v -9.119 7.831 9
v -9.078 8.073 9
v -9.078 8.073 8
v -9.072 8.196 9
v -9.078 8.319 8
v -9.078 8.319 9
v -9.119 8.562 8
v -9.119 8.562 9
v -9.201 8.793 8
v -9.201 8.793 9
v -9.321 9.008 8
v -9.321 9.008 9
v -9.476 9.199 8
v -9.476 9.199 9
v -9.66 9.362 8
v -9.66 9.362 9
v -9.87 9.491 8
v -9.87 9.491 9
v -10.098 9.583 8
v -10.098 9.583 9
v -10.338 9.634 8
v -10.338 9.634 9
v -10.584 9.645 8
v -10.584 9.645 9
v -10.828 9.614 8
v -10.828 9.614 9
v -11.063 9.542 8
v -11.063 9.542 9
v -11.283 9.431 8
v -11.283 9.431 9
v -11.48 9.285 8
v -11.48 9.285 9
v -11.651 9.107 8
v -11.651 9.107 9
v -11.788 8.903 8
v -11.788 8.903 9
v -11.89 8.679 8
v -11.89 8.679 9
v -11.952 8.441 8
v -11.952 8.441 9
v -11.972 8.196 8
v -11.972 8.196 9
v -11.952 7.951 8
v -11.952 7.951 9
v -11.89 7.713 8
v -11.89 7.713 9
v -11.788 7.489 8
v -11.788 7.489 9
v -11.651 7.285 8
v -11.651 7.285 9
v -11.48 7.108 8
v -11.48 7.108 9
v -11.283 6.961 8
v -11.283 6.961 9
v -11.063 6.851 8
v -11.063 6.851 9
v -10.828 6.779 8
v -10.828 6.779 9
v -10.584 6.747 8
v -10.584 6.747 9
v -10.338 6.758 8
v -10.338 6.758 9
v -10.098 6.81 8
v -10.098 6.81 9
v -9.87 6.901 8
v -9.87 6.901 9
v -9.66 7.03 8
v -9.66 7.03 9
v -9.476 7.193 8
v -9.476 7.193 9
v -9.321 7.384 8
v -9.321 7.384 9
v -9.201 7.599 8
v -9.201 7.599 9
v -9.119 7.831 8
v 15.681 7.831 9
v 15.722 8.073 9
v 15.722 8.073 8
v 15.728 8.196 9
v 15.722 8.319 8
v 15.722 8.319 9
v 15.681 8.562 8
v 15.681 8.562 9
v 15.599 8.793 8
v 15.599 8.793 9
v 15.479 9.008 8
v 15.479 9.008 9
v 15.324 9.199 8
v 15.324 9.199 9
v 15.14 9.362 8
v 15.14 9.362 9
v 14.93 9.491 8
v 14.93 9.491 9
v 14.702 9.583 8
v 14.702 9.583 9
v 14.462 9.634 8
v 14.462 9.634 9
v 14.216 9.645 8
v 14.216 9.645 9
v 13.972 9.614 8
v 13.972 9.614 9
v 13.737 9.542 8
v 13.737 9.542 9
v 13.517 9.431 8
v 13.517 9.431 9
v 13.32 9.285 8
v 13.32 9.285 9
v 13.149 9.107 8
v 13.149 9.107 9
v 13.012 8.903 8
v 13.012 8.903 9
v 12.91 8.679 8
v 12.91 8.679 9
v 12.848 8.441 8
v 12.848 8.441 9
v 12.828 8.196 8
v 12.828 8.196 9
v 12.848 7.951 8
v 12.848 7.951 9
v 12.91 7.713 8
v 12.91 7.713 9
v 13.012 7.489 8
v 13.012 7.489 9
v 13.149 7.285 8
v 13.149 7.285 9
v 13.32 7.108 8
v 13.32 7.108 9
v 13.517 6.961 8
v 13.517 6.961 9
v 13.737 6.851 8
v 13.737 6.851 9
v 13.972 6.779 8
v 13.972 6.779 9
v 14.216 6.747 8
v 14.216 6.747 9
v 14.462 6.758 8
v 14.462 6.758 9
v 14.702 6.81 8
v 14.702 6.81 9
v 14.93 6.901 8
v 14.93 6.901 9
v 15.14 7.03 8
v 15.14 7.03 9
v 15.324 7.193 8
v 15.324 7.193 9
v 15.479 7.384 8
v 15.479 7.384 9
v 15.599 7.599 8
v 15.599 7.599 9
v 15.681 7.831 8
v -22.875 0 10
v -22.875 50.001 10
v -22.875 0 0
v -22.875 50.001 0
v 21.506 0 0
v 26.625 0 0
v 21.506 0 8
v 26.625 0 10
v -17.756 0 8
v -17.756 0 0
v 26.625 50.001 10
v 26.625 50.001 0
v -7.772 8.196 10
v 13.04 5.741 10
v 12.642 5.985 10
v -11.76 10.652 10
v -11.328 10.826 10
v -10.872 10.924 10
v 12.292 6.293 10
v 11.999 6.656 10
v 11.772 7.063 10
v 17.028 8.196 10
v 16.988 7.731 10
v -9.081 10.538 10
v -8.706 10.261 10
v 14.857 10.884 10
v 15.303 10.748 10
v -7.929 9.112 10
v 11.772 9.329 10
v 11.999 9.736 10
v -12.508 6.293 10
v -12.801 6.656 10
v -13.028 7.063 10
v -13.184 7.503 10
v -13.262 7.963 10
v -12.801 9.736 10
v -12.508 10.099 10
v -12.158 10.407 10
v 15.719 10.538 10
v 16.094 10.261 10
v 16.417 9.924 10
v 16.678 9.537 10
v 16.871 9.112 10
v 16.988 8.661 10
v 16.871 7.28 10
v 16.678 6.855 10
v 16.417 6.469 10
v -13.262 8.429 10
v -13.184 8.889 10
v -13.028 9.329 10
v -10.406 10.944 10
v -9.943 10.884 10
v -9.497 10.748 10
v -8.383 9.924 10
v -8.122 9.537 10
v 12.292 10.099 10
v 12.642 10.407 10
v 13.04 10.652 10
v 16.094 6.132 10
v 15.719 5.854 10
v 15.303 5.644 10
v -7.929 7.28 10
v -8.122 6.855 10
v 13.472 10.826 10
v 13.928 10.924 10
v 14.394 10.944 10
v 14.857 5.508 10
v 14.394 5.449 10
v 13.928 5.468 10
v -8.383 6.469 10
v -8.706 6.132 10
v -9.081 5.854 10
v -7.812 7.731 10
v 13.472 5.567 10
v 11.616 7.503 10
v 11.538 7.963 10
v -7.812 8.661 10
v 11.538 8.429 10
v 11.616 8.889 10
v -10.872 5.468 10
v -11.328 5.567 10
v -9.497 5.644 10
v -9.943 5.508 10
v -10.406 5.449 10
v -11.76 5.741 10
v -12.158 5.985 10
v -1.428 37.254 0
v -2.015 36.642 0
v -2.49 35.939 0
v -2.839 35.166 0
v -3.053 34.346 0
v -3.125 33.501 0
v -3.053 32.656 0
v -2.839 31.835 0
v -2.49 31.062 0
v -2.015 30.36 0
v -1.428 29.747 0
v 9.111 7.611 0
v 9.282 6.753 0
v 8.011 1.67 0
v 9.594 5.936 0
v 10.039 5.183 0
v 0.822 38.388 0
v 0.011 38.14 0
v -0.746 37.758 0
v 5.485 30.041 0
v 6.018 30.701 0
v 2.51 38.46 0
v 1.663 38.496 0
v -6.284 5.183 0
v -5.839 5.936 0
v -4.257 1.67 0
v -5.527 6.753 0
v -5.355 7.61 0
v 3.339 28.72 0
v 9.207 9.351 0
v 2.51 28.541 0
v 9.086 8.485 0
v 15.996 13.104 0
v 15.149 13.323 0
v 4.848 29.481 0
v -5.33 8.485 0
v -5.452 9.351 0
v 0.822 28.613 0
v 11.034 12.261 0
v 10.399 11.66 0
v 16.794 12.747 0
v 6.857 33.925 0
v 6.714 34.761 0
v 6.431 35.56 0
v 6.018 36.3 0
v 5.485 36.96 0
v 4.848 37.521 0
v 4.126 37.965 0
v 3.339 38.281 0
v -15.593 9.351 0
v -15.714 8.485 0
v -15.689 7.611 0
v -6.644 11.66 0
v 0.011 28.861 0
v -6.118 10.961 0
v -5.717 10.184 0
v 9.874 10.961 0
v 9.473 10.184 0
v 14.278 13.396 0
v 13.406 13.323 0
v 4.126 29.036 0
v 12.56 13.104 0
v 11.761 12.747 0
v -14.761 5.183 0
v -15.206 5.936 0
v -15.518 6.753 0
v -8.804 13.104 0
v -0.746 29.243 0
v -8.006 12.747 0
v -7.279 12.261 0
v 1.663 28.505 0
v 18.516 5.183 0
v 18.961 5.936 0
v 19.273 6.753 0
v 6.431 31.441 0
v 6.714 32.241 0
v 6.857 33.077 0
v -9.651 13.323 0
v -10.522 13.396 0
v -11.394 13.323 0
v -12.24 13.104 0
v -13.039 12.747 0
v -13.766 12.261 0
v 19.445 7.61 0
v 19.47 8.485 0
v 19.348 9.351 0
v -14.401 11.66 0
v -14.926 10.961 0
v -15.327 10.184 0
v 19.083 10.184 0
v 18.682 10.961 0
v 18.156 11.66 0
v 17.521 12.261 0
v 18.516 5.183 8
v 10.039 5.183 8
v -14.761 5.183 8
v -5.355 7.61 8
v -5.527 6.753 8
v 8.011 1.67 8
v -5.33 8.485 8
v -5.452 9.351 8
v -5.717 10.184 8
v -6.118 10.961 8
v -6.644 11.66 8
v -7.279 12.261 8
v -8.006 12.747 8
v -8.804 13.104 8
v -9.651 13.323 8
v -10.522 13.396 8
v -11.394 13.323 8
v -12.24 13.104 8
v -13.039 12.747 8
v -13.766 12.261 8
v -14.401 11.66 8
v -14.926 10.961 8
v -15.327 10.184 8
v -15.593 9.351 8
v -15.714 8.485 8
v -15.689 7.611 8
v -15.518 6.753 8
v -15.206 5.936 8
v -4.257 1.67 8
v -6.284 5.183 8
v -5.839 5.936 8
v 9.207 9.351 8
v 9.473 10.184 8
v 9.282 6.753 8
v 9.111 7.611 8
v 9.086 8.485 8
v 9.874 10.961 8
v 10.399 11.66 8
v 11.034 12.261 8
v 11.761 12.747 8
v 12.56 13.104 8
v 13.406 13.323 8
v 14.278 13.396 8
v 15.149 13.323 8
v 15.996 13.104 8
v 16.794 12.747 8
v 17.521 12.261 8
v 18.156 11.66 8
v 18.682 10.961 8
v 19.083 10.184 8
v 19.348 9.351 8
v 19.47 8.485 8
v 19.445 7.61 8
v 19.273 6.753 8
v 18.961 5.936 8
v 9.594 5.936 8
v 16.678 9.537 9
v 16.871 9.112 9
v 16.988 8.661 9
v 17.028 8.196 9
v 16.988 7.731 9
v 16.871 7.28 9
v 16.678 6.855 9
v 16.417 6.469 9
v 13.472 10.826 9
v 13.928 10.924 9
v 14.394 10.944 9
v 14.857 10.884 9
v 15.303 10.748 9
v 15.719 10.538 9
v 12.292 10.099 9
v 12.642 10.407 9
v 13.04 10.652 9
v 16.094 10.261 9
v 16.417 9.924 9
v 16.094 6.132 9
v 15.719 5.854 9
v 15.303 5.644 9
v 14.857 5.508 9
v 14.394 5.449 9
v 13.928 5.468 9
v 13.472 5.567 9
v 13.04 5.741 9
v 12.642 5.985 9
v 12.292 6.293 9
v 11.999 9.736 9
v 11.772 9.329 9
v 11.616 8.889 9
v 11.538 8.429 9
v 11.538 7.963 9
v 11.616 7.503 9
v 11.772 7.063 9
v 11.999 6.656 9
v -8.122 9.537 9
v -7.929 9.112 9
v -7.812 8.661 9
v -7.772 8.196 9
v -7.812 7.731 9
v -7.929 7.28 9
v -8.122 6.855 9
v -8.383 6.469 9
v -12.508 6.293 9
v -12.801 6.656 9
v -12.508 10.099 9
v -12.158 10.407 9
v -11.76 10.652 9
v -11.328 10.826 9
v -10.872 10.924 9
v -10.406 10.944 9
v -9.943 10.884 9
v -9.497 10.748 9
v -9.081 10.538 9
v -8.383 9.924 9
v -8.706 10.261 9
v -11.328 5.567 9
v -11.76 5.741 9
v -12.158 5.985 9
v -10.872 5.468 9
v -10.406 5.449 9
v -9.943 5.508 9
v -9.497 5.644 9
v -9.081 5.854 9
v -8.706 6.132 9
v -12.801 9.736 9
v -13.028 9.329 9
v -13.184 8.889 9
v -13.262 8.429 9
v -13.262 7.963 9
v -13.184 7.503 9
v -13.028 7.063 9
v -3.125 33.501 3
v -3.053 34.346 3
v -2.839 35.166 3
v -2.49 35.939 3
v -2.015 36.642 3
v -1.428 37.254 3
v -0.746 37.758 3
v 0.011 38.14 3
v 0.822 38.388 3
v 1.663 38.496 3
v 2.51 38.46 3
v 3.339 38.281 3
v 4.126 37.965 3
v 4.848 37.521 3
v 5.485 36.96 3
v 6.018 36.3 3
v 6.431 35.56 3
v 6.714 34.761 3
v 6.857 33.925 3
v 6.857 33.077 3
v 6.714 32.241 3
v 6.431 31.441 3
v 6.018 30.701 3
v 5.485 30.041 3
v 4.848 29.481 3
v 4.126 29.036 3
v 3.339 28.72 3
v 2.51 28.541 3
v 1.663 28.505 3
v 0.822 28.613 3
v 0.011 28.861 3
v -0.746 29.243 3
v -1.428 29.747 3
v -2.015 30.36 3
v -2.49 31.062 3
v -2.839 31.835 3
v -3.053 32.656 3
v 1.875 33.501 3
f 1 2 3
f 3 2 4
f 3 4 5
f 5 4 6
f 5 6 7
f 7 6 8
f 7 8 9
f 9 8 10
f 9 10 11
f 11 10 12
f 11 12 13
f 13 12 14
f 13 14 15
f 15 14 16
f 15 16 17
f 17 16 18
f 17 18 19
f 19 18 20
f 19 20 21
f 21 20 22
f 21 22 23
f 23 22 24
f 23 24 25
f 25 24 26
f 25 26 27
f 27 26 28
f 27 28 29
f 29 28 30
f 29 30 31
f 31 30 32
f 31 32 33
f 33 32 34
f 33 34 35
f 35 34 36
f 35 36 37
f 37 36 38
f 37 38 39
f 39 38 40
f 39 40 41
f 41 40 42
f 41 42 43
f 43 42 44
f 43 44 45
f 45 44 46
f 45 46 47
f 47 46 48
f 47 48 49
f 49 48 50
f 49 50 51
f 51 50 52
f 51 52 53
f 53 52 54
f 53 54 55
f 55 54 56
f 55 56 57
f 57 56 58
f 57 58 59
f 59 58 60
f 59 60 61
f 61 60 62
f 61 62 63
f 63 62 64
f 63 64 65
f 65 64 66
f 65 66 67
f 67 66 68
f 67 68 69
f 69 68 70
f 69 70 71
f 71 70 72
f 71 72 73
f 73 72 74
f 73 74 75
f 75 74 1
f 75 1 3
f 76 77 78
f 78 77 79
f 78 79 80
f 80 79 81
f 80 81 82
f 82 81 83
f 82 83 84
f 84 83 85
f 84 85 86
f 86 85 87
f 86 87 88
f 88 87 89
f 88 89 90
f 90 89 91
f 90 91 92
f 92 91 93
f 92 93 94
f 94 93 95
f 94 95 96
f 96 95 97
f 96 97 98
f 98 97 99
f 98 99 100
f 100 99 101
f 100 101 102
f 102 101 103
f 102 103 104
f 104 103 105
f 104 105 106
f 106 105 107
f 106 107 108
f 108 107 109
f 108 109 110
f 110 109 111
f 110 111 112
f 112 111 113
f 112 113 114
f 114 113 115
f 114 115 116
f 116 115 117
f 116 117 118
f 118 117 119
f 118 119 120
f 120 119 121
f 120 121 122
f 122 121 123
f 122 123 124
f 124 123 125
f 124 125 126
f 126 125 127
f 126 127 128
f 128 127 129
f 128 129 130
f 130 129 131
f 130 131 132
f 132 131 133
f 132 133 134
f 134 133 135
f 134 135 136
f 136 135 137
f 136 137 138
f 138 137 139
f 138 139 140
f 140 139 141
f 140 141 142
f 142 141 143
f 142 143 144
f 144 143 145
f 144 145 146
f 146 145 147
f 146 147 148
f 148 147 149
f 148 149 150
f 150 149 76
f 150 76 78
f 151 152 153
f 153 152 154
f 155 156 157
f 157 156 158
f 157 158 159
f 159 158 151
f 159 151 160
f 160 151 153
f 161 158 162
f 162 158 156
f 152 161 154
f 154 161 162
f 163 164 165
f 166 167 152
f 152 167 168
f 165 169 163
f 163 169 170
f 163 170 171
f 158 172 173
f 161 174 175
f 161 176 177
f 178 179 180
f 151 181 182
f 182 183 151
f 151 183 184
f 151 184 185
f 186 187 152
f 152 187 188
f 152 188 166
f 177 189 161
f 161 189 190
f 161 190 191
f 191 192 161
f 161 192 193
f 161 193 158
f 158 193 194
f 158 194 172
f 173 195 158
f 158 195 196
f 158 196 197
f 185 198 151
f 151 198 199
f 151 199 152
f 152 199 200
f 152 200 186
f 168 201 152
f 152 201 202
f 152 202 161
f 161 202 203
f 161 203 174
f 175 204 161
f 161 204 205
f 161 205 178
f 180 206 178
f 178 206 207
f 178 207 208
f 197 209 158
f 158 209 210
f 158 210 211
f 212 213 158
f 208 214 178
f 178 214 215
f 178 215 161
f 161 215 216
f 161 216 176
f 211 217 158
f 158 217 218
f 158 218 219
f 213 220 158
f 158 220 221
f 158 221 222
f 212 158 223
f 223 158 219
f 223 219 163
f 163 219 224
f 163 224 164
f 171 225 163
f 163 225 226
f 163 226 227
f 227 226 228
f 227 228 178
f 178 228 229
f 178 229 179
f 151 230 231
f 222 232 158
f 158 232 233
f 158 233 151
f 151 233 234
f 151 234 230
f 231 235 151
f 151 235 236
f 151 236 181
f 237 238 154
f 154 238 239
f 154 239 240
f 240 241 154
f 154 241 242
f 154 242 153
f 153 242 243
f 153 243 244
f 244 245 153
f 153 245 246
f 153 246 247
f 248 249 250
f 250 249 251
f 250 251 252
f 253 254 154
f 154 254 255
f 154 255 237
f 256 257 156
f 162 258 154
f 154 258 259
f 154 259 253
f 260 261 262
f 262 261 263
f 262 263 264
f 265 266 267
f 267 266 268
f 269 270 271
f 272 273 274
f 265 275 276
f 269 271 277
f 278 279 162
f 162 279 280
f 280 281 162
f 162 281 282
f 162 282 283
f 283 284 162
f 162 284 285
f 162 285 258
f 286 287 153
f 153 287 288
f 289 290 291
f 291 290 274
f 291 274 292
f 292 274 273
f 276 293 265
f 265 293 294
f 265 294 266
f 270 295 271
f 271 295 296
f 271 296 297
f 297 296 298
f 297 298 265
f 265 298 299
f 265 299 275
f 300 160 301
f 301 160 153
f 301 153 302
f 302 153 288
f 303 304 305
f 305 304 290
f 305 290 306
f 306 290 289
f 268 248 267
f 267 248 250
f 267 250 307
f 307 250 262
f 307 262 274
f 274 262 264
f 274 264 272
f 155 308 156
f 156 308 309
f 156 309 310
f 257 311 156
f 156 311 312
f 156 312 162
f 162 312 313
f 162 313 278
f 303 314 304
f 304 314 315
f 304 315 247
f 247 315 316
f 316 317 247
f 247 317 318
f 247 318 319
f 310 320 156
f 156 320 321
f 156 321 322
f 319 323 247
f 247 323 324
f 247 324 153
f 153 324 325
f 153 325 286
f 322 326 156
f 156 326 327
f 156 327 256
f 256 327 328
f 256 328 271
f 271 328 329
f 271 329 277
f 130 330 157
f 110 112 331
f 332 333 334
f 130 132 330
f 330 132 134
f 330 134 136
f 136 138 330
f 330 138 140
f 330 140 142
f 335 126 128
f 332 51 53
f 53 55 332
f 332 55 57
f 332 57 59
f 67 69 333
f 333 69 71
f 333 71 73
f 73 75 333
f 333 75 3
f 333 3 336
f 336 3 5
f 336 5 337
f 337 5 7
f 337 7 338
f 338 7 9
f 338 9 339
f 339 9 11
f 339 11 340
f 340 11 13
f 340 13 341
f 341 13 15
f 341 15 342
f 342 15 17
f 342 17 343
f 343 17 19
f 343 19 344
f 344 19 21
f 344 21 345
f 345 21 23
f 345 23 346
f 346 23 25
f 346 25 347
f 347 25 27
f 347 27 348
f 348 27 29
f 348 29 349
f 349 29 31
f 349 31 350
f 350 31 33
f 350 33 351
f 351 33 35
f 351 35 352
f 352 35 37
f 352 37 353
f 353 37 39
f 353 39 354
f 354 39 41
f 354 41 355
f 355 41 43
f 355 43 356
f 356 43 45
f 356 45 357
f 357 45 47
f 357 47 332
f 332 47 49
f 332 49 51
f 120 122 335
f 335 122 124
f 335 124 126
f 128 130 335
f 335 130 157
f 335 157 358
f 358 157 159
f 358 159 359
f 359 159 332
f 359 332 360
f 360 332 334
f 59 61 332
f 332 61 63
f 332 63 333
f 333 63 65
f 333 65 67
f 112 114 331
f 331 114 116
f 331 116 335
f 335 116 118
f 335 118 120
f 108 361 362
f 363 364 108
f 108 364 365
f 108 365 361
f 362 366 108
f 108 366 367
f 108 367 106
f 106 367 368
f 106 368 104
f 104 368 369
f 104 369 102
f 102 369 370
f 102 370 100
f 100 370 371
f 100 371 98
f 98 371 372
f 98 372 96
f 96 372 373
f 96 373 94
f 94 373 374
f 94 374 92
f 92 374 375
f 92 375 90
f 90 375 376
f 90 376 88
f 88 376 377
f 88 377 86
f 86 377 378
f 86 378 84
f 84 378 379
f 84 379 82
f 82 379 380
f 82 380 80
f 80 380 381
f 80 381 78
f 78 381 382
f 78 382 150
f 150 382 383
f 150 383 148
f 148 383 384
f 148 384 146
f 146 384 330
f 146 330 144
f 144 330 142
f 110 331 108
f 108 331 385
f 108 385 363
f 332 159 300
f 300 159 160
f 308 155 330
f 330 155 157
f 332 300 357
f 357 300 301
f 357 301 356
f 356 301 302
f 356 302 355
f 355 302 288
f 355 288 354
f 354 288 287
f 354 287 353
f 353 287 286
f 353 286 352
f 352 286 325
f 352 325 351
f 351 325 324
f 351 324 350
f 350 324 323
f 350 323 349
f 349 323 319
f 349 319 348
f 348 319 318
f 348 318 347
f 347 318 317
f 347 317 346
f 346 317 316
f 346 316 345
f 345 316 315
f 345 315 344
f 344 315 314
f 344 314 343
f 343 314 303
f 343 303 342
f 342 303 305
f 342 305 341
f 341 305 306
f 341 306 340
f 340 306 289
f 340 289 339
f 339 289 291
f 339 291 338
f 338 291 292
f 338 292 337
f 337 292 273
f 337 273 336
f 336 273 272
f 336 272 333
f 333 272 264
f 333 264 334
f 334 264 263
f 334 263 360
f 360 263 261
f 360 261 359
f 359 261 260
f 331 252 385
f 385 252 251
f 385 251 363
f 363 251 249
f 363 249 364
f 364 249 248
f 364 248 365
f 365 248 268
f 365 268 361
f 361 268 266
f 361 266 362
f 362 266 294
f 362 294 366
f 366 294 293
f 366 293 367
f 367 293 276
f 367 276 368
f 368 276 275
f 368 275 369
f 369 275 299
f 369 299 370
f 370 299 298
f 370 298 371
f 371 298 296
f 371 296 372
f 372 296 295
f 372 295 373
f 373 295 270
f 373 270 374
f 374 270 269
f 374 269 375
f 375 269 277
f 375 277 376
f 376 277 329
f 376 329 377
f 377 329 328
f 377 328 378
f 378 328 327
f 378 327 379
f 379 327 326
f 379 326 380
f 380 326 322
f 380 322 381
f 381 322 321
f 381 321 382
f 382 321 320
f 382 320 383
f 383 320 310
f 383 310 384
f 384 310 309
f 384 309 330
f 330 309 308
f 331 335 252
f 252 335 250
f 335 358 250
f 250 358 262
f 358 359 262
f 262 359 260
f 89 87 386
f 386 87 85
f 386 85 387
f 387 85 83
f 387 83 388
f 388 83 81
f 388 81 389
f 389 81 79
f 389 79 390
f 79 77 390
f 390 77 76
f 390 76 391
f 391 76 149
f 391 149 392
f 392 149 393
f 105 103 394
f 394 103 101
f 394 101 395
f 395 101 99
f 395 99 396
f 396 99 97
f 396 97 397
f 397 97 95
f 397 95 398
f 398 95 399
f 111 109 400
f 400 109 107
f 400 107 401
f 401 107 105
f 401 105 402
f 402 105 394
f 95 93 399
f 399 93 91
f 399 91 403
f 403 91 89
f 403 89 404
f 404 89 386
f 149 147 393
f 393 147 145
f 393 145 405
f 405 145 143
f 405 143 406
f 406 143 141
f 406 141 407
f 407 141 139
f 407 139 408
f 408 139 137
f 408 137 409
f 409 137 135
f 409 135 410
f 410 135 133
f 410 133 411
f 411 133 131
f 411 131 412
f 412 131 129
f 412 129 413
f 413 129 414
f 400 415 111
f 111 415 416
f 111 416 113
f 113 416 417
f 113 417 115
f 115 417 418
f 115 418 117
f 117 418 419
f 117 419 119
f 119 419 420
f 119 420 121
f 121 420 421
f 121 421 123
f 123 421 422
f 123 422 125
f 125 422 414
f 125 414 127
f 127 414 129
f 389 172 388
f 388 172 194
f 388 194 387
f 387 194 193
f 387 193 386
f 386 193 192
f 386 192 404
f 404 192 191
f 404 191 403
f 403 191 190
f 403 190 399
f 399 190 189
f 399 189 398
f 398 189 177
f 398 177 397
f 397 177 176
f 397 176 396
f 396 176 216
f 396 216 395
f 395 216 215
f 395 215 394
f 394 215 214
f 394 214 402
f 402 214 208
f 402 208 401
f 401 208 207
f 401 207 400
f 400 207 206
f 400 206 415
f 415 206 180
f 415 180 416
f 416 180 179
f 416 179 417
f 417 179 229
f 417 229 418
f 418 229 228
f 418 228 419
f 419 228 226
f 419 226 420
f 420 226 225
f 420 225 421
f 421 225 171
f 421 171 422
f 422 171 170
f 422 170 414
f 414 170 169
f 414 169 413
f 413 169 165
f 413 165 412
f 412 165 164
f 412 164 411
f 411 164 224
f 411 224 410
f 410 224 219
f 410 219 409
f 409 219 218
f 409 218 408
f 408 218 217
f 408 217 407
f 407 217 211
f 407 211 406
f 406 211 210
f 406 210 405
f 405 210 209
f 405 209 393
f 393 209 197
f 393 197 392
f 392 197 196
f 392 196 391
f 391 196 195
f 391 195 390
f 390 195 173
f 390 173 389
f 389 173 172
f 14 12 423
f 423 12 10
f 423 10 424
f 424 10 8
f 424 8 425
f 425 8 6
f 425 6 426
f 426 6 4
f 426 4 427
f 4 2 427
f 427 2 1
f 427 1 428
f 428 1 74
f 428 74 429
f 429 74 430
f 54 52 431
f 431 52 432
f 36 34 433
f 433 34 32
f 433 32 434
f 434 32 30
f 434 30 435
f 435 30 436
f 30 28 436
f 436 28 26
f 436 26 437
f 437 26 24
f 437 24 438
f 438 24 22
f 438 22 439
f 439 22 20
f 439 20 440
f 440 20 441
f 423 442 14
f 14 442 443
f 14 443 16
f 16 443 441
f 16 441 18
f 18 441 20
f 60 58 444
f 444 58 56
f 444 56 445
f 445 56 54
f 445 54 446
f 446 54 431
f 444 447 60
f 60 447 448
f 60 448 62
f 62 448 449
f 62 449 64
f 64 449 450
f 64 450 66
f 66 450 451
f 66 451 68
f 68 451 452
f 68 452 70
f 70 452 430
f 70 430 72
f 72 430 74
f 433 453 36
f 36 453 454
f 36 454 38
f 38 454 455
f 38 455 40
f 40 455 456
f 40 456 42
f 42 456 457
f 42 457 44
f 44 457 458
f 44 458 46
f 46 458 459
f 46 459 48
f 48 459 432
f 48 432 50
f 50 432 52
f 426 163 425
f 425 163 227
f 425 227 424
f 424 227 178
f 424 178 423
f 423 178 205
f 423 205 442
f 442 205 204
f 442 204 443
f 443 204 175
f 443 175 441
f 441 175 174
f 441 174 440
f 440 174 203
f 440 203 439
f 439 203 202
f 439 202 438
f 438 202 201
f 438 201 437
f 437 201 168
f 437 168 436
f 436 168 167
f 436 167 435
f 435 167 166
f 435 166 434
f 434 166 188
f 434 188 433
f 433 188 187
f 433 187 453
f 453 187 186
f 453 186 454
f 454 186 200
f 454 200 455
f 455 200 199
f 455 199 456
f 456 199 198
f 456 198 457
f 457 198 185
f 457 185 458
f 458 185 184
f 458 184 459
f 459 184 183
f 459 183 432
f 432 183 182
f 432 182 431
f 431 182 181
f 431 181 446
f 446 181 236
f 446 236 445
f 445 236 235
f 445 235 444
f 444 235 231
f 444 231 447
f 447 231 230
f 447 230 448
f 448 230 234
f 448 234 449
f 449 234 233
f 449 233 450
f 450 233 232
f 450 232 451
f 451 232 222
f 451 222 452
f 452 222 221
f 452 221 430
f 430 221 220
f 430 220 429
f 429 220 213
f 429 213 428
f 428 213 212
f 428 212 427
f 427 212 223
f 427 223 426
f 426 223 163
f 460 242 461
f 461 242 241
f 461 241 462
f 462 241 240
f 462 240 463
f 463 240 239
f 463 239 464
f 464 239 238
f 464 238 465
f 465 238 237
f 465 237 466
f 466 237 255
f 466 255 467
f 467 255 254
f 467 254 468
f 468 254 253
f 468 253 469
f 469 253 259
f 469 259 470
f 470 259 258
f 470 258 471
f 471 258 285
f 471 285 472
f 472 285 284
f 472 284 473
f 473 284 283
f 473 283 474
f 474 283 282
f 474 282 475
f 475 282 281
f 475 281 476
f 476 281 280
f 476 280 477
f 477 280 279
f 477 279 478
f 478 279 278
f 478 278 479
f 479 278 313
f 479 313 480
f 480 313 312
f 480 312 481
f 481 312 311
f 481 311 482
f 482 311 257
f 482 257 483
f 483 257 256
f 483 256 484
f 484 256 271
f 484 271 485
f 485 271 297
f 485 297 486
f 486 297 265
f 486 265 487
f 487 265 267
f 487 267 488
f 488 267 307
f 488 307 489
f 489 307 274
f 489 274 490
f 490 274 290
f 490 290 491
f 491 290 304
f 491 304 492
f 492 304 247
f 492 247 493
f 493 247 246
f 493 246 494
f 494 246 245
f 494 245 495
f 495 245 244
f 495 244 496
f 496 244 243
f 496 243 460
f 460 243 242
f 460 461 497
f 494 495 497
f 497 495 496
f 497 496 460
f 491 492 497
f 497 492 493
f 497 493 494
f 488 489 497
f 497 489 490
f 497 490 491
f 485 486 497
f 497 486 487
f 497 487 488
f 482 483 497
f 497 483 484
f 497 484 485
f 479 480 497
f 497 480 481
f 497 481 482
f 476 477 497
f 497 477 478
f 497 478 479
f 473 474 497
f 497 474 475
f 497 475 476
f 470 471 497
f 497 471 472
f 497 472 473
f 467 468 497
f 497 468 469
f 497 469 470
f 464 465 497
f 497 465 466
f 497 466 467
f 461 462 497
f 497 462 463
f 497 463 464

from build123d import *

# Parameters (mm, degrees)
SKETCH1_W           = 49.5
SKETCH1_H           = 50.000619057
BOSS_EXTRUDE1_DEPTH = 10
CUT_EXTRUDE1_DEPTH  = 8
SKETCH4_R           = 1.45
CUT_EXTRUDE2_DEPTH  = 8
SKETCH5_R           = 2.75
CUT_EXTRUDE3_DEPTH  = 1
SKETCH6_R           = 5
CUT_EXTRUDE4_DEPTH  = 3


with BuildPart() as part:
    # Sketch1 → Boss-Extrude1 (new body)
    with BuildSketch(Plane.XY):
        with Locations((1.875288206, 25.000309529)):
            Rectangle(SKETCH1_W, SKETCH1_H)
    extrude(amount=BOSS_EXTRUDE1_DEPTH)

    # Sketch3 → Cut-Extrude1 (cut)
    with BuildSketch(Plane(origin=(0, 0, 0), x_dir=(-1, 0, 0), z_dir=(0, 0, -1))):
        with BuildLine():
            Line((17.871256182, -0.2), (14.760723675, 5.183428821))
            ThreePointArc((14.760723675, 5.183428821), (10.522339102, 13.396152422), (6.2841063, 5.183350498))
            Line((6.2841063, 5.183350498), (4.25724424, 1.67))
            Line((4.25724424, 1.67), (-8.010847692, 1.67))
            Line((-8.010847692, 1.67), (-10.03930416, 5.183389663))
            ThreePointArc((-10.03930416, 5.183389663), (-14.277636876, 13.396152423), (-18.5158937, 5.183350498))
            Line((-18.5158937, 5.183350498), (-21.621564167, -0.2))
            Line((-21.621564167, -0.2), (17.871256182, -0.2))
        make_face()
    extrude(amount=-CUT_EXTRUDE1_DEPTH, mode=Mode.SUBTRACT)

    # Sketch4 → Cut-Extrude2 (cut)
    with BuildSketch(Plane(origin=(0, 0, 8), x_dir=(-1, 0, 0), z_dir=(0, 0, -1))):
        with Locations((-14.27761285, 8.196152423)):
            Circle(SKETCH4_R)
        with Locations((10.52238715, 8.196152423)):
            Circle(SKETCH4_R)
    extrude(amount=-CUT_EXTRUDE2_DEPTH, mode=Mode.SUBTRACT)

    # Sketch5 → Cut-Extrude3 (cut)
    with BuildSketch(Plane.XY.offset(10)):
        with Locations((-10.52238715, 8.196152423)):
            Circle(SKETCH5_R)
        with Locations((14.27761285, 8.196152423)):
            Circle(SKETCH5_R)
    extrude(amount=-CUT_EXTRUDE3_DEPTH, mode=Mode.SUBTRACT)

    # Sketch6 → Cut-Extrude4 (cut)
    with BuildSketch(Plane(origin=(0, 0, 0), x_dir=(-1, 0, 0), z_dir=(0, 0, -1))):
        with Locations((-1.875273442, 33.500619057)):
            Circle(SKETCH6_R)
    extrude(amount=-CUT_EXTRUDE4_DEPTH, mode=Mode.SUBTRACT)


solid = part.part
